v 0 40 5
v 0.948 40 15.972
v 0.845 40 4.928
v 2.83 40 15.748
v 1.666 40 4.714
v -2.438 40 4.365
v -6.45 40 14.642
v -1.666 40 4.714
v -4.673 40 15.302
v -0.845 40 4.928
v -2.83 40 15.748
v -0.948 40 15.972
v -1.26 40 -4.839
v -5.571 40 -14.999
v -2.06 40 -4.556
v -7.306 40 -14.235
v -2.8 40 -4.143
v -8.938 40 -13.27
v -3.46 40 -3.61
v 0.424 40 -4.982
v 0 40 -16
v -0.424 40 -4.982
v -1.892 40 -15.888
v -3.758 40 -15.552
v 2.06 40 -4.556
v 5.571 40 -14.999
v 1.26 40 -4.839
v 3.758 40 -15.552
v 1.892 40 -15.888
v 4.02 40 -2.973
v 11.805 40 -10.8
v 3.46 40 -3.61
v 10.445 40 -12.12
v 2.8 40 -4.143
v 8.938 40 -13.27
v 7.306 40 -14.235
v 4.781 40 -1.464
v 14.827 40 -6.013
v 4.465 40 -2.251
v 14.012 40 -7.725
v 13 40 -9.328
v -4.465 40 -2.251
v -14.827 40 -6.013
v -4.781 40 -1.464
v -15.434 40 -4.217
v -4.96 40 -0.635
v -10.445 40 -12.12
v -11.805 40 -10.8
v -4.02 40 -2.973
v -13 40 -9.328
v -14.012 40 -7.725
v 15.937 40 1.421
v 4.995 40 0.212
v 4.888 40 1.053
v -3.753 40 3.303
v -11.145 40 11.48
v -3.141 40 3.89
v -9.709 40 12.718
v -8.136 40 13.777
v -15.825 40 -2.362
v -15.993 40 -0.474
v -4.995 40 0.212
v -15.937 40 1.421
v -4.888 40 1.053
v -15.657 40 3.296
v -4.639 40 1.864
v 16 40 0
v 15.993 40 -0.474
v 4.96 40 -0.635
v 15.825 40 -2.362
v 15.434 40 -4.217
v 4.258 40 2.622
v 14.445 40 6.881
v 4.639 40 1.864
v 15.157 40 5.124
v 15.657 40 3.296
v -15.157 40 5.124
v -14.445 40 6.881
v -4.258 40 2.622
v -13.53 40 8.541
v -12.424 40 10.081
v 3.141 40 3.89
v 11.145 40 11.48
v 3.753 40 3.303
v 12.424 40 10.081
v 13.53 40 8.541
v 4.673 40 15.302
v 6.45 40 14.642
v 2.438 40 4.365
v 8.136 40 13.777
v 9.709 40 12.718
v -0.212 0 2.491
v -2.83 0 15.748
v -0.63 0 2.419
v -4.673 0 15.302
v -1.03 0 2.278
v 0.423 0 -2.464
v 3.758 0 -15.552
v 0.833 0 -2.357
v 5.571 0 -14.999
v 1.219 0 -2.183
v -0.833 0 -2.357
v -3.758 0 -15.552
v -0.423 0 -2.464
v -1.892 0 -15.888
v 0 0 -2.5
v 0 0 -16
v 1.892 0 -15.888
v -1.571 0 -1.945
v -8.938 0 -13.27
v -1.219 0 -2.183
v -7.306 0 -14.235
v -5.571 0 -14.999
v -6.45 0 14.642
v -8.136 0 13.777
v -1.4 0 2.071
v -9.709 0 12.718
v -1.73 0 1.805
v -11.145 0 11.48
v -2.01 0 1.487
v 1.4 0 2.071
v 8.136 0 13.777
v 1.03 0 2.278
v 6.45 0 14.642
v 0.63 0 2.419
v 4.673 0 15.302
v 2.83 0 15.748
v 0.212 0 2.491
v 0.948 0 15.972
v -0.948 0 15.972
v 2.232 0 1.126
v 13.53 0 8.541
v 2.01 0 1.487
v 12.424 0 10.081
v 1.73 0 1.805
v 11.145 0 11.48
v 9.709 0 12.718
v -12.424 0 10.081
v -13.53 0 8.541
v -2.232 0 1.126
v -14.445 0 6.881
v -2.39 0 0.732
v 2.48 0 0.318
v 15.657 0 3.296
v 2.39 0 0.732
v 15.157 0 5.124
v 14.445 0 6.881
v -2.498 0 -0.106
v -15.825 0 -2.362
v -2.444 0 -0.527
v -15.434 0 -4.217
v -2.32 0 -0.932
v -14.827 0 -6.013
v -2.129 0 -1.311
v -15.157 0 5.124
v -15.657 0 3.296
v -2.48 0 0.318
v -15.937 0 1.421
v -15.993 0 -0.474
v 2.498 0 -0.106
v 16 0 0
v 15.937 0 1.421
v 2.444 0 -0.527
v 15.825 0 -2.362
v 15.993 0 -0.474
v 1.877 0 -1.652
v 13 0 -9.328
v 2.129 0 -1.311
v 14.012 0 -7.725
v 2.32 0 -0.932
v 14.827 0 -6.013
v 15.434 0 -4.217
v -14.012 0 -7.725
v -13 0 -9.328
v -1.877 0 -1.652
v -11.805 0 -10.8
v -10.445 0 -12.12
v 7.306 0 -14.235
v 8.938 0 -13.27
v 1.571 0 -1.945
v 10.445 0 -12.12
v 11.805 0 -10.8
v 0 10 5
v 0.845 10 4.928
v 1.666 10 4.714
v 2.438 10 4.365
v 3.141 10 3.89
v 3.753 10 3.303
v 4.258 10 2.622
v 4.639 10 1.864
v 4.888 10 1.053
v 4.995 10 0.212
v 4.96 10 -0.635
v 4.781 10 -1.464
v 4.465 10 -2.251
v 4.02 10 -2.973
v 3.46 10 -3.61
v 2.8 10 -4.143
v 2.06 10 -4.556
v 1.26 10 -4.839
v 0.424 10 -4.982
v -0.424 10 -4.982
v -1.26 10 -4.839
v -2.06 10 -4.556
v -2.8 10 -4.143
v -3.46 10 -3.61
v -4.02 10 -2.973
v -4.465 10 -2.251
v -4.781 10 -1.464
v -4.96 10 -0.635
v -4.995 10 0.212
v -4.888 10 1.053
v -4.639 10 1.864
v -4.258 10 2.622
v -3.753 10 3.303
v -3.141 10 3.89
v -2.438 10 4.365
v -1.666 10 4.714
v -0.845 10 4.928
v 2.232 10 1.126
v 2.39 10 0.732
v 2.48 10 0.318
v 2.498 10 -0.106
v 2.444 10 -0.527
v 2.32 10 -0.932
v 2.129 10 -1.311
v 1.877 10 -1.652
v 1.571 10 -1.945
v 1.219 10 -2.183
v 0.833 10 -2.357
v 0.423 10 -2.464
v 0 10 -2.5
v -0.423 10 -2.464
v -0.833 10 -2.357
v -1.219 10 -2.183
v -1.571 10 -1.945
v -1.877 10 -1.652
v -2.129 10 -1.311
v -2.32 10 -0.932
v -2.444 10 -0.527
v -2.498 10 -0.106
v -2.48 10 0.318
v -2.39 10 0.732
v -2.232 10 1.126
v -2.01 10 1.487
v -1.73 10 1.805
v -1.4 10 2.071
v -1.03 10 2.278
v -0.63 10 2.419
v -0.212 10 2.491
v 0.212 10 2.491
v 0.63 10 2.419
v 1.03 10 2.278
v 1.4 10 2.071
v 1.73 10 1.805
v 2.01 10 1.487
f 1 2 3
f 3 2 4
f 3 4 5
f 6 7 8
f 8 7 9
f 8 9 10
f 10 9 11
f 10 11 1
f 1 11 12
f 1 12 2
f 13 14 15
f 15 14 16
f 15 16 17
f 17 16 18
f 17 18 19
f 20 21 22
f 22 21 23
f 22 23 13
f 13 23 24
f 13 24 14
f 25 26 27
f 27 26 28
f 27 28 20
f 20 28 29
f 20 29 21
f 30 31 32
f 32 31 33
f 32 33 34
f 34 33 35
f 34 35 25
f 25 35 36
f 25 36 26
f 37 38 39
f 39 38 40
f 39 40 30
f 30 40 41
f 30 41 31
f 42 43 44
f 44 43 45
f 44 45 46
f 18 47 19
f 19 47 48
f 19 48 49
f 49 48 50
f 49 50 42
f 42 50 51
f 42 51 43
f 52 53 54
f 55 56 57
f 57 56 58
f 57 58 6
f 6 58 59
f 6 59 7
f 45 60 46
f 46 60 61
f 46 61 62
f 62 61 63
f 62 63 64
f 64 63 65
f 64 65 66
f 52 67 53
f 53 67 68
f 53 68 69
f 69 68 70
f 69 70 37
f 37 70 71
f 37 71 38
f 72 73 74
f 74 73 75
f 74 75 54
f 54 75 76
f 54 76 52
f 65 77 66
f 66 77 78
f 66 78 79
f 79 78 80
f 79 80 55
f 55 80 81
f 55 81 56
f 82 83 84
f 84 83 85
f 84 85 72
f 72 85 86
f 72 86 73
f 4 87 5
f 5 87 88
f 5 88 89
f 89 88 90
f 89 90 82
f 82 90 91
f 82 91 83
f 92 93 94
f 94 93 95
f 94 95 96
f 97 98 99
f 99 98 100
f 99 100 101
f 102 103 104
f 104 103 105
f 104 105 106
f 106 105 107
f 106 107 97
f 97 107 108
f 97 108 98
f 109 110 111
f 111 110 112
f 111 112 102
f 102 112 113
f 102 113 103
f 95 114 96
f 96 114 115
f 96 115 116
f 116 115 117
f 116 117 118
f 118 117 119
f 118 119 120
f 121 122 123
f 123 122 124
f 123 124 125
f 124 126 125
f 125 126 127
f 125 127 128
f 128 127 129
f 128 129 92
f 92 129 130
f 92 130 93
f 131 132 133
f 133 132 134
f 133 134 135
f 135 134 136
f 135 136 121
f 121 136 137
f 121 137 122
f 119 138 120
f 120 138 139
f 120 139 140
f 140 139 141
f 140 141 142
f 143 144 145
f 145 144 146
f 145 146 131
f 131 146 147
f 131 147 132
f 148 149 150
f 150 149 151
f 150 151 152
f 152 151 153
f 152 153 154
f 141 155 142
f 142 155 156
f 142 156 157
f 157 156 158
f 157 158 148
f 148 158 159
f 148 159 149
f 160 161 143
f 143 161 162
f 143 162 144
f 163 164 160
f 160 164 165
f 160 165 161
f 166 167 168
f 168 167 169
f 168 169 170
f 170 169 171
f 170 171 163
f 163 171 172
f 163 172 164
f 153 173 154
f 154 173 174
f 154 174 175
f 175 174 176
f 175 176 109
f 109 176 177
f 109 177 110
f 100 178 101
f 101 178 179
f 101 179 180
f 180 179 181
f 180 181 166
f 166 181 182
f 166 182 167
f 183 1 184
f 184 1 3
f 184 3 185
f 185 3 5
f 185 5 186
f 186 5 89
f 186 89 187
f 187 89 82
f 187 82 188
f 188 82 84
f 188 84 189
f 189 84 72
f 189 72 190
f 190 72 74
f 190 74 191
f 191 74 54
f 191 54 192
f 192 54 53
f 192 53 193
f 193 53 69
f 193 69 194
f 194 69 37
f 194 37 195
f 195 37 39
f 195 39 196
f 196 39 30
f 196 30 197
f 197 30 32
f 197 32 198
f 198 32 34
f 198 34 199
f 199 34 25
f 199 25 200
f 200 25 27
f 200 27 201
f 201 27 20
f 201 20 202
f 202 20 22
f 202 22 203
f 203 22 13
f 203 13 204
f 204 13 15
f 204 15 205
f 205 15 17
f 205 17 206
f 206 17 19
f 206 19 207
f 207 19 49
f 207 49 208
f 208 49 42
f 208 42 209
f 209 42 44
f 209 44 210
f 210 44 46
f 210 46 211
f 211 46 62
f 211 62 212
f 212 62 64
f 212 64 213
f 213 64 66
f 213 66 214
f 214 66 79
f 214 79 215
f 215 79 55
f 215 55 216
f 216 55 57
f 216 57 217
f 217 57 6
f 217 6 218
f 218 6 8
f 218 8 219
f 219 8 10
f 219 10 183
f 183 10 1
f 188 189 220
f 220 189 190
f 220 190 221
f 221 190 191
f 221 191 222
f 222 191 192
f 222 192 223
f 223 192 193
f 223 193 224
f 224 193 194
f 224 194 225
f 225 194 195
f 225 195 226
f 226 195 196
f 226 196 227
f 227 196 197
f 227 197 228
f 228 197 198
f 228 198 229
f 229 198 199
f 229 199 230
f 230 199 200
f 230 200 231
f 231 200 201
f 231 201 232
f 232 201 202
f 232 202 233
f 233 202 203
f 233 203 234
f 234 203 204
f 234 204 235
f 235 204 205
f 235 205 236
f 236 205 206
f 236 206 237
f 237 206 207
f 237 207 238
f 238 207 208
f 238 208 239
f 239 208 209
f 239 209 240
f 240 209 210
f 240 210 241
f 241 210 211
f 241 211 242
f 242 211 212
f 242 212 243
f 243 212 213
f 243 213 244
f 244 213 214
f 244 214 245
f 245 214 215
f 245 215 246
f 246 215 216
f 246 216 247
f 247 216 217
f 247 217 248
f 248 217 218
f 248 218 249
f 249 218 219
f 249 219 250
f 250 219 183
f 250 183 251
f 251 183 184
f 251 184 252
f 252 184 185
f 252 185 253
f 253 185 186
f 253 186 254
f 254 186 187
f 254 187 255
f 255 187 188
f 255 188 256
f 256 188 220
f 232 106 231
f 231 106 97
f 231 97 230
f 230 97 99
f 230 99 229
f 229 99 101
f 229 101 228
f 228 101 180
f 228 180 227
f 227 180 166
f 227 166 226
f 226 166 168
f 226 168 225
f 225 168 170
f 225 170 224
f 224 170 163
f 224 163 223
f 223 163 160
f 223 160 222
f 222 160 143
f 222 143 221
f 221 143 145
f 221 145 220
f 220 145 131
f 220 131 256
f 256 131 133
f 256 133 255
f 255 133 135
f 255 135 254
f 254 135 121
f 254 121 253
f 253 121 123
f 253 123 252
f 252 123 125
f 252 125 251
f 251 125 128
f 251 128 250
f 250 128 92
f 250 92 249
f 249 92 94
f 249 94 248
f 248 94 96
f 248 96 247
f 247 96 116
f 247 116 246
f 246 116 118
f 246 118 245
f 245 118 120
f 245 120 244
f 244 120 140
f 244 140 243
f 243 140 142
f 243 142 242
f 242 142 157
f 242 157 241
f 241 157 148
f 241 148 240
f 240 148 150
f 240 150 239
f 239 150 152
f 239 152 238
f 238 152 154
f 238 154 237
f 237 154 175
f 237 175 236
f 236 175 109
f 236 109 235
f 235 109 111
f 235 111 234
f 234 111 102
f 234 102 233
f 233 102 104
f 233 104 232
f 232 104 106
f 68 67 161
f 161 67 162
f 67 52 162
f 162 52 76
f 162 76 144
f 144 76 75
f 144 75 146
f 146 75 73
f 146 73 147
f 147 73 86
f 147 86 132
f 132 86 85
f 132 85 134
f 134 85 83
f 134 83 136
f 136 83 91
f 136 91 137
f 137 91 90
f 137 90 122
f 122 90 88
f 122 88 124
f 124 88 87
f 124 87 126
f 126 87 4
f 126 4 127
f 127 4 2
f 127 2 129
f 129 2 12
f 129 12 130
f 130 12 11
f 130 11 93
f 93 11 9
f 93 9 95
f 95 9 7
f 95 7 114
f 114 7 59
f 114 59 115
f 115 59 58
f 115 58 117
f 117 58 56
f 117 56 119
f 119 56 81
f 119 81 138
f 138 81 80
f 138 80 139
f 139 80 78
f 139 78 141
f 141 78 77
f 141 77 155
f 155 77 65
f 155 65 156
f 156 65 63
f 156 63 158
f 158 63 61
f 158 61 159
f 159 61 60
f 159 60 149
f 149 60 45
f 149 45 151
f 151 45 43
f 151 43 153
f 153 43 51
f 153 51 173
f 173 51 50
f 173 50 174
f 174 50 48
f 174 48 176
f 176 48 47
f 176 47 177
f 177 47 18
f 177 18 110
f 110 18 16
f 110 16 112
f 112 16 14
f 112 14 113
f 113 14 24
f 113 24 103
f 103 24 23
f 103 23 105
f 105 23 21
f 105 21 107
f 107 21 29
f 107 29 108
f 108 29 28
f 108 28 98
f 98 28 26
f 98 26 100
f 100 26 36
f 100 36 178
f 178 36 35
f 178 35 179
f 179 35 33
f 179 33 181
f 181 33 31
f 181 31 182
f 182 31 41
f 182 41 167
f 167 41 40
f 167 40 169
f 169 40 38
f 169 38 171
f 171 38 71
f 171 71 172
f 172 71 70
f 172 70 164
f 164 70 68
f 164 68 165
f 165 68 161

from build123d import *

# Parameters (mm, degrees)
SKETCH_1_R          = 6
EXTRUDE_1_DEPTH     = 40
SKETCH_2_R          = 5
CUT_EXTRUDE_2_DEPTH = 30
SKETCH_3_R          = 2.5
CUT_EXTRUDE_4_DEPTH = 10
SKETCH_5_R          = 16
SKETCH_5_R_2        = 6
EXTRUDE_1_2_DEPTH   = 40


with BuildPart() as part:
    # 草圖1 → Extrude 1 (new body)
    with BuildSketch(Plane(origin=(0, 0, 0), x_dir=(1, 0, 0), z_dir=(0, 1, 0))):
        with Locations(Location((0, 0, 0), (0, 0, 270))):
            Circle(SKETCH_1_R)
    extrude(amount=EXTRUDE_1_DEPTH)

    # 草圖2 → 除料-伸長2 (cut)
    with BuildSketch(Plane(origin=(0, 40, 0), x_dir=(1, 0, 0), z_dir=(0, 1, 0))):
        with Locations(Location((0, 0, 0), (0, 0, 270))):
            Circle(SKETCH_2_R)
    extrude(amount=-CUT_EXTRUDE_2_DEPTH, mode=Mode.SUBTRACT)

    # 草圖3 → 除料-伸長4 (cut)
    with BuildSketch(Plane.XZ):
        with Locations(Location((0, 0, 0), (0, 0, 270))):
            Circle(SKETCH_3_R)
    extrude(amount=-CUT_EXTRUDE_4_DEPTH, mode=Mode.SUBTRACT)

    # 草圖5 → Extrude 1 2 (add)
    with BuildSketch(Plane(origin=(0, 0, 0), x_dir=(1, 0, 0), z_dir=(0, 1, 0))):
        Circle(SKETCH_5_R)
        Circle(SKETCH_5_R_2, mode=Mode.SUBTRACT)
    extrude(amount=EXTRUDE_1_2_DEPTH)


solid = part.part
